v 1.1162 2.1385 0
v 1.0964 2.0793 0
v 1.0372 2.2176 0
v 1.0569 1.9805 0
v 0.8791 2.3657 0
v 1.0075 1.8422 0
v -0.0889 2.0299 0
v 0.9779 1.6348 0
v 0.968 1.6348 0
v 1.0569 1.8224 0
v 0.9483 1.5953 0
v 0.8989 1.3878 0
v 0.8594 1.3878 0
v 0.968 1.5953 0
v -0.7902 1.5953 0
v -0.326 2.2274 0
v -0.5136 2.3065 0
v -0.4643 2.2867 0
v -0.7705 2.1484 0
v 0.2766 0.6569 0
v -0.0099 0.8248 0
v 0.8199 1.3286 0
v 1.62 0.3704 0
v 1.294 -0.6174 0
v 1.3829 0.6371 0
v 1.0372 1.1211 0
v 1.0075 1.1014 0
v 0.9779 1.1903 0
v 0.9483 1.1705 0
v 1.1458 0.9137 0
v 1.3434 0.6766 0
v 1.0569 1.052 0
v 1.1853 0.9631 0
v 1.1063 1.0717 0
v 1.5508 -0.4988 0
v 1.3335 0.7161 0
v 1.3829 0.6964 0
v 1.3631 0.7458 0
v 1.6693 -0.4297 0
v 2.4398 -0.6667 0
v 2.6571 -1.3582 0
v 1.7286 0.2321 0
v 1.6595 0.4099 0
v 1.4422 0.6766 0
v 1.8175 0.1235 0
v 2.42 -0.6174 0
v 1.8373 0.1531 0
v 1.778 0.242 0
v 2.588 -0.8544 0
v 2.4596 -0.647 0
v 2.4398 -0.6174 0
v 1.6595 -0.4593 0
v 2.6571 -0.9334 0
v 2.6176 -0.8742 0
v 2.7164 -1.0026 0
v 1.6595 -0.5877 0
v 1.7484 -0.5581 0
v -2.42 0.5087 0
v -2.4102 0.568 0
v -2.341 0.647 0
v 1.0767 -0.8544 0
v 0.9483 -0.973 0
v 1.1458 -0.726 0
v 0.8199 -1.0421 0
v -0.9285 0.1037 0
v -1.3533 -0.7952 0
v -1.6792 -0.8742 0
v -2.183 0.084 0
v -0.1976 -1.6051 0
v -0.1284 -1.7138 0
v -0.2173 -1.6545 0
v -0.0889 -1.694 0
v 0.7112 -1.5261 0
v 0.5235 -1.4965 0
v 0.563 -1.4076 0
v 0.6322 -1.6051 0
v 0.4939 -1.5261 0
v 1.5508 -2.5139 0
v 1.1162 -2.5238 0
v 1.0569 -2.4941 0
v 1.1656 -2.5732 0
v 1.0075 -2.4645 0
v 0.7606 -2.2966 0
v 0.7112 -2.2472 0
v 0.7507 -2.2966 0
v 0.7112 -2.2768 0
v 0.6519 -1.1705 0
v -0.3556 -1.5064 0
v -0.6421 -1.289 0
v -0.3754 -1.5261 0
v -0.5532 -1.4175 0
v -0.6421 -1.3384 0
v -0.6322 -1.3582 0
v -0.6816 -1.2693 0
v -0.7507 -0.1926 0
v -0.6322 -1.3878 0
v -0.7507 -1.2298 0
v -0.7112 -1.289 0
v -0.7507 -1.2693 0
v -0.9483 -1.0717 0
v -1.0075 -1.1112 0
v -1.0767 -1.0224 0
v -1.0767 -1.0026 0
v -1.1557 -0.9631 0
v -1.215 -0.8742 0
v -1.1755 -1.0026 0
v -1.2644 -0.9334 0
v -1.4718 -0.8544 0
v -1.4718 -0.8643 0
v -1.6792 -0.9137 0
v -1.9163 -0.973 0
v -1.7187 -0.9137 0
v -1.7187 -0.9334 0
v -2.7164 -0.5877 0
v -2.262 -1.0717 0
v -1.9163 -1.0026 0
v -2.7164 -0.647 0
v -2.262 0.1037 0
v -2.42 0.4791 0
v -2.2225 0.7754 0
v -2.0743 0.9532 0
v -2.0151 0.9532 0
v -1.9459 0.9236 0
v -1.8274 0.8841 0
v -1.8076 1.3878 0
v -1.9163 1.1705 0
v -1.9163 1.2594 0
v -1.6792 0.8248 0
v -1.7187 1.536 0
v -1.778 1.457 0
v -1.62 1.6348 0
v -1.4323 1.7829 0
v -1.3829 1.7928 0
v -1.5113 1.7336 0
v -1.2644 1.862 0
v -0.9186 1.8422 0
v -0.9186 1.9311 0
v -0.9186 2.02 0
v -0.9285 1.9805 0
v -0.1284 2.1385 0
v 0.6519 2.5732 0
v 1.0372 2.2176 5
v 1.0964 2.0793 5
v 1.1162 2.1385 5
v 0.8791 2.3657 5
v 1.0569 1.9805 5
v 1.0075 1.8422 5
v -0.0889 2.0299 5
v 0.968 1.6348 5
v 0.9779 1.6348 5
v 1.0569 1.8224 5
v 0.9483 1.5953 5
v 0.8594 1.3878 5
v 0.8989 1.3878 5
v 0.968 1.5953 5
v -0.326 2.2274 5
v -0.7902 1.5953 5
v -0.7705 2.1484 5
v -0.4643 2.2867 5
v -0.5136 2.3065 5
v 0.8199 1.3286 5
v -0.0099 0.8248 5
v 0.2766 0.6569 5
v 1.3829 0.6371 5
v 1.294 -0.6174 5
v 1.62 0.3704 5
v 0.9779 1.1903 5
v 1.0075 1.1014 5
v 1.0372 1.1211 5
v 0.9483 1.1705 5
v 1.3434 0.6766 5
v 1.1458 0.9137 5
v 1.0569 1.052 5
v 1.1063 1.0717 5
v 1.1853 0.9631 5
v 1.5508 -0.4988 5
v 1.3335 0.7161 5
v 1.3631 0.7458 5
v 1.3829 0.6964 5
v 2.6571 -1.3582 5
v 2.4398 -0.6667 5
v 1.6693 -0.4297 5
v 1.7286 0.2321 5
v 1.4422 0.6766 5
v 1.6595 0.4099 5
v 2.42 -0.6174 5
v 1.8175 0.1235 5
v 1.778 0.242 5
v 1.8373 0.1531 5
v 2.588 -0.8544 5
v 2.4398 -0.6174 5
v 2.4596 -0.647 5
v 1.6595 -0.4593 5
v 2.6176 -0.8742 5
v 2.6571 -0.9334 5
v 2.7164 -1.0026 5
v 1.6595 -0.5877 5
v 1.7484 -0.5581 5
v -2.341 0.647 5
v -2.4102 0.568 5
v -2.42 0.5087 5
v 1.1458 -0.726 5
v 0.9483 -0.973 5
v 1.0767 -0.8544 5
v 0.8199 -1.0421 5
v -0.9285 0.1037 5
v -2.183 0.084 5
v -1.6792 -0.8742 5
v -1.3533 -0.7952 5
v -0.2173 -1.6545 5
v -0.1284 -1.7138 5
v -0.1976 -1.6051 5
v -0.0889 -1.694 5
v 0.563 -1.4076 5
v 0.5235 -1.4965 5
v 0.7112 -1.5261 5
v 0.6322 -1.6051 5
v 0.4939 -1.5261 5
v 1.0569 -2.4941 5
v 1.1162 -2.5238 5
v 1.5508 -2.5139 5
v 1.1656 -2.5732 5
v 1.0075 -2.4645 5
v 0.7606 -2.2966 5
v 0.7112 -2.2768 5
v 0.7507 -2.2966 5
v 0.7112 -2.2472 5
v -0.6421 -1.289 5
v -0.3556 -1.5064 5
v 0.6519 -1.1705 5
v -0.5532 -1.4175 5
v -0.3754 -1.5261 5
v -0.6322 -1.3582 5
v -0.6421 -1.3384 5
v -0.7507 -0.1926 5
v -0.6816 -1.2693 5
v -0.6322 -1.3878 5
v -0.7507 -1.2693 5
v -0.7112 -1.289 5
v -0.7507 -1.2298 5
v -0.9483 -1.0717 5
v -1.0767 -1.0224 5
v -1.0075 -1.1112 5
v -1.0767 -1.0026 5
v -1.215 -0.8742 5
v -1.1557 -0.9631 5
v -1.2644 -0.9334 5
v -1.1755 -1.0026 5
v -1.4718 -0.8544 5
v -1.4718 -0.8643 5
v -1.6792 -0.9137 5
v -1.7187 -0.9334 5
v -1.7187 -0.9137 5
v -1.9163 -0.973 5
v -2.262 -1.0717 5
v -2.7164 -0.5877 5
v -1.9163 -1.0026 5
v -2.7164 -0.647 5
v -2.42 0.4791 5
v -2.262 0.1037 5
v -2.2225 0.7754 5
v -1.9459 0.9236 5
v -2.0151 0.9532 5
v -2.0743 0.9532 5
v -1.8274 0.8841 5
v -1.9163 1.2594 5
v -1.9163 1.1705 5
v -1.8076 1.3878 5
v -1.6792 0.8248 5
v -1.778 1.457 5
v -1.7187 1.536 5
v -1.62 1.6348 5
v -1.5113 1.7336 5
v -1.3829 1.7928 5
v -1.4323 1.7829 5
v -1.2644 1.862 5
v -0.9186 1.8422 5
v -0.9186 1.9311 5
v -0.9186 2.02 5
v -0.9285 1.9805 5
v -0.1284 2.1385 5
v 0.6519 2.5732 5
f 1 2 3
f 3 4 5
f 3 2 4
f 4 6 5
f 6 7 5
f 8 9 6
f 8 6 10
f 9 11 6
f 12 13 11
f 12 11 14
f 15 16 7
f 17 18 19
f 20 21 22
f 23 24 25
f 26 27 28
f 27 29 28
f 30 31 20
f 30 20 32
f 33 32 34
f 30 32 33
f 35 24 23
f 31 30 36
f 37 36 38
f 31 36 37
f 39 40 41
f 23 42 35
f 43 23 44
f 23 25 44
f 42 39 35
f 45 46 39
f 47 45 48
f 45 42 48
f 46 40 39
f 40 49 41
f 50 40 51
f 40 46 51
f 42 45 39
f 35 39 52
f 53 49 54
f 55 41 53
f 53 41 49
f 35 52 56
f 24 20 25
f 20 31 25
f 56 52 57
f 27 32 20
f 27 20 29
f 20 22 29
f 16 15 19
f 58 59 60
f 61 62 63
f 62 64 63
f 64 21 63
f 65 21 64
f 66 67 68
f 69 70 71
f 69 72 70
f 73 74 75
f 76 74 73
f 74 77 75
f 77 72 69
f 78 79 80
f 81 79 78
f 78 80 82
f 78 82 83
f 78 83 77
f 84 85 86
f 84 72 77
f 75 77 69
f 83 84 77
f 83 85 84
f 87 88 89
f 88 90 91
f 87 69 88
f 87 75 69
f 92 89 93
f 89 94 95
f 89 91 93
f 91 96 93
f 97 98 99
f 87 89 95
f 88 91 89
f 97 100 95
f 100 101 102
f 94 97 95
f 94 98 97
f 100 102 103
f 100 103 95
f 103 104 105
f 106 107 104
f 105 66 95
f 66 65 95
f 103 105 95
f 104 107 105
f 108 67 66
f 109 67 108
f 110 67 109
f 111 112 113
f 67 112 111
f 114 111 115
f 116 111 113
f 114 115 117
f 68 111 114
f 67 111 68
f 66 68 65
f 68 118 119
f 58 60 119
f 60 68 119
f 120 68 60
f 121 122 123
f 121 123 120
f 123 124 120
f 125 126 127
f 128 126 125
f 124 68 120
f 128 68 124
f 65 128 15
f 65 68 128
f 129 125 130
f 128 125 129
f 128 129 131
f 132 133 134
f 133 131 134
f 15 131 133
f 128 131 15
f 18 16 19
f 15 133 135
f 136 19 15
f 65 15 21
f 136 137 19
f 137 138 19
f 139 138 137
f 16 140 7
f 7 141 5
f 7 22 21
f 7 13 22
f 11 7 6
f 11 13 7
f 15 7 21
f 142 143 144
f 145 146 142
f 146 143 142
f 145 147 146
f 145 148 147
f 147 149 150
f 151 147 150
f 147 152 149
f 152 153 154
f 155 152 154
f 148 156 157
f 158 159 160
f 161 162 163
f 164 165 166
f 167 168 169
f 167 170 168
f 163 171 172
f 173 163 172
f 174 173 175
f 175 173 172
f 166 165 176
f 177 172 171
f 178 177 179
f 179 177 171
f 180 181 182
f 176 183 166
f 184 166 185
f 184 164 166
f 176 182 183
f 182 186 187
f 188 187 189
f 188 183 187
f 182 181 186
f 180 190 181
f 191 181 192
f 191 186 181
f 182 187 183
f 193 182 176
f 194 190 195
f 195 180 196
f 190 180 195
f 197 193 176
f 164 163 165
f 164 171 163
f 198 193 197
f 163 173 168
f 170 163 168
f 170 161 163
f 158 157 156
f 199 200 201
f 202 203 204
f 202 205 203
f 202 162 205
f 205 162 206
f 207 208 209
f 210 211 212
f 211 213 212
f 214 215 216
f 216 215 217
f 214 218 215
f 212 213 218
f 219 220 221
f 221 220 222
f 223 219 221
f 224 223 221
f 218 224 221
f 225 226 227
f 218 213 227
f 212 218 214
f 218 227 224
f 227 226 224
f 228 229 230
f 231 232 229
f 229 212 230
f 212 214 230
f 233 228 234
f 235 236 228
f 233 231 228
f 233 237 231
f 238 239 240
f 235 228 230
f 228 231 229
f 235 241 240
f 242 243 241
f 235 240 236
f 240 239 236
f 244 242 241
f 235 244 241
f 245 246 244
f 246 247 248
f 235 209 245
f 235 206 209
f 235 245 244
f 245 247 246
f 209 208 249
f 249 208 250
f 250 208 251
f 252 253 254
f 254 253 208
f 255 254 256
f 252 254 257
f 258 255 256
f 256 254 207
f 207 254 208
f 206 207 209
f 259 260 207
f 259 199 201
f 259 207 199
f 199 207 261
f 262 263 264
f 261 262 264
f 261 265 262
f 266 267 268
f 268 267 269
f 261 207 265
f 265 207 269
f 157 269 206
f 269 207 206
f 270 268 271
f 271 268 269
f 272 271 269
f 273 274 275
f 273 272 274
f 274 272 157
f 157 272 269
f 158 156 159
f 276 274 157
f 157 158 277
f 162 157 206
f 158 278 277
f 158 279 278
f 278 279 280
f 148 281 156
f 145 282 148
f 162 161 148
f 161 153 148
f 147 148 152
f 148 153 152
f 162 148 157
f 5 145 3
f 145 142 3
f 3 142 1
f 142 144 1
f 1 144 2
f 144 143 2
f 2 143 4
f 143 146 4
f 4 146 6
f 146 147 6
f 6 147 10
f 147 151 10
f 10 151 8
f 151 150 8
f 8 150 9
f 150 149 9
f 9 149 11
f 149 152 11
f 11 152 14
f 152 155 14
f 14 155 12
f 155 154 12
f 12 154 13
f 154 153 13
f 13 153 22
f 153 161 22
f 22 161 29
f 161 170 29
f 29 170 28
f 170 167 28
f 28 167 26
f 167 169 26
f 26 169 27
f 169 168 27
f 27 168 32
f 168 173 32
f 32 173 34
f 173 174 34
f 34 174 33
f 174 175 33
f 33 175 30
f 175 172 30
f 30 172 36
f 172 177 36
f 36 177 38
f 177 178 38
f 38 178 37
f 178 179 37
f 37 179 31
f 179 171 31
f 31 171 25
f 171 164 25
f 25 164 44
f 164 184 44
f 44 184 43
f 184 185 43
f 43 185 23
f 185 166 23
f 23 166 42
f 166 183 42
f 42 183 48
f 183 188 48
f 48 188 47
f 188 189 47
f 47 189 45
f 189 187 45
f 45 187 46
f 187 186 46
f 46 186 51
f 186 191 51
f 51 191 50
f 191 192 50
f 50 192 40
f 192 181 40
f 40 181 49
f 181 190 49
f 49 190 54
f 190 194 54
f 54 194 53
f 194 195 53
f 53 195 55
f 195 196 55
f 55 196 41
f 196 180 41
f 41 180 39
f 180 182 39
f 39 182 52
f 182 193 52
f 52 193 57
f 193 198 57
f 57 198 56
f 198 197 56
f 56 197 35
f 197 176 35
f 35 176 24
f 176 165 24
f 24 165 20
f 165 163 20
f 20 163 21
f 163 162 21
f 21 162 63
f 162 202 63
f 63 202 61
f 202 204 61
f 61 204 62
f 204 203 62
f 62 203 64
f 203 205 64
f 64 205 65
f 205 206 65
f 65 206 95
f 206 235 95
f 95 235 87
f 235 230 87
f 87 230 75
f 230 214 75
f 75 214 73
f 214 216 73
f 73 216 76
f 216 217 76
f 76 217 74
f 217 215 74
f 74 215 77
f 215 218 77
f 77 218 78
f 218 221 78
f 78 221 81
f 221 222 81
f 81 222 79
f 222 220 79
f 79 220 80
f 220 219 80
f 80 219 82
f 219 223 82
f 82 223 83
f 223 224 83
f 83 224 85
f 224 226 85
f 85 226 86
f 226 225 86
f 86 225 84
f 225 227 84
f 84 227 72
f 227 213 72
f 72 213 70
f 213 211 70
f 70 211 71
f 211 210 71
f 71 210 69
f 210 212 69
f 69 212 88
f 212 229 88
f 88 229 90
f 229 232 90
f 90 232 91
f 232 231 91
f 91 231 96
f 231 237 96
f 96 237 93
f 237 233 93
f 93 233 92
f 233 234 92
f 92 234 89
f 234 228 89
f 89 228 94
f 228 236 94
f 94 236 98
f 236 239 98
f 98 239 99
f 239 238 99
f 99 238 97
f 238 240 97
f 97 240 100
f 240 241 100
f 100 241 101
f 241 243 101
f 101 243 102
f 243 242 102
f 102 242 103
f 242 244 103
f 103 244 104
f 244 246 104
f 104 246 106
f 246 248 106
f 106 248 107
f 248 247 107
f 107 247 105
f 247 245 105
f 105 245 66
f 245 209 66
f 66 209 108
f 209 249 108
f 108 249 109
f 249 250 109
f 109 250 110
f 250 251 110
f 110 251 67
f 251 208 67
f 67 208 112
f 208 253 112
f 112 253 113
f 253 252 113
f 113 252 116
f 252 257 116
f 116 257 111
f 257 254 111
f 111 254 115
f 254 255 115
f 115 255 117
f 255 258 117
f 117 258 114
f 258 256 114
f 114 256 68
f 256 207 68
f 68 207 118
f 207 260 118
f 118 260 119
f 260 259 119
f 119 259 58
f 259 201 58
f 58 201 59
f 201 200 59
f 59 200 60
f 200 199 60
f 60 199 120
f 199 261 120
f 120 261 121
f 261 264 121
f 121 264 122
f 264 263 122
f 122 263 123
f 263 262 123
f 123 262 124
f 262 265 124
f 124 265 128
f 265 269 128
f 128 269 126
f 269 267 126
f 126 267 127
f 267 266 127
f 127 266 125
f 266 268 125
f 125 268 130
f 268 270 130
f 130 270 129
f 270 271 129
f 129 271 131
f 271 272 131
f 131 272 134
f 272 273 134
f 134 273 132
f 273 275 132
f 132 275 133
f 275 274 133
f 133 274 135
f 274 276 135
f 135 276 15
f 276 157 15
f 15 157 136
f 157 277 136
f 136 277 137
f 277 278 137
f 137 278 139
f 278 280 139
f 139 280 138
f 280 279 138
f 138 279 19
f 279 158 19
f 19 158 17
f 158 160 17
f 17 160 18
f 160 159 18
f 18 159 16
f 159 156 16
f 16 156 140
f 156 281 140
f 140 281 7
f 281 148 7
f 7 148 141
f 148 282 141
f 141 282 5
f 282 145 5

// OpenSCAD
// Module names are of the form poly_<inkscape-path-id>().  As a result,
// you can associate a polygon in this OpenSCAD program with the corresponding
// SVG element in the Inkscape document by looking for the XML element with
// the attribute id="inkscape-path-id".

// fudge value is used to ensure that subtracted solids are a tad taller
// in the z dimension than the polygon being subtracted from.  This helps
// keep the resulting .stl file manifold.
fudge = 0.1;

module poly_path4285(h)
{
  scale([25.4/90, -25.4/90, 1]) union()
  {
    linear_extrude(height=h)
      polygon([[-1.820000,-8.172500],[-1.645000,-8.102500],[-1.155000,-7.892500],[-0.455000,-7.577500],[-0.315000,-7.192500],[2.310000,-9.117500],[3.115000,-8.382500],[3.675000,-7.857500],[3.955000,-7.577500],[3.885000,-7.367500],[3.745000,-7.017500],[3.570000,-6.527500],[3.745000,-6.457500],[3.465000,-5.792500],[3.430000,-5.792500],[3.360000,-5.652500],[3.430000,-5.652500],[3.185000,-4.917500],[3.045000,-4.917500],[2.905000,-4.707500],[3.360000,-4.147500],[3.465000,-4.217500],[3.675000,-3.972500],[3.570000,-3.902500],[3.745000,-3.727500],[3.920000,-3.797500],[4.200000,-3.412500],[4.060000,-3.237500],[4.725000,-2.537500],[4.830000,-2.642500],[4.900000,-2.467500],[4.760000,-2.397500],[4.900000,-2.257500],[5.110000,-2.397500],[5.880000,-1.452500],[5.740000,-1.312500],[6.125000,-0.822500],[6.300000,-0.857500],[6.510000,-0.542500],[6.440000,-0.437500],[8.575000,2.187500],[8.645000,2.187500],[8.715000,2.292500],[8.645000,2.362500],[9.170000,3.027500],[9.275000,3.097500],[9.415000,3.307500],[9.625000,3.552500],[9.415000,4.812500],[5.915000,1.522500],[5.880000,1.627500],[6.195000,1.977500],[5.880000,2.082500],[5.495000,1.767500],[4.585000,2.187500],[0.980000,-2.327500],[-0.035000,-2.922500],[4.060000,2.572500],[3.815000,3.027500],[3.360000,3.447500],[2.905000,3.692500],[-3.290000,-0.367500],[-2.660000,0.682500],[2.310000,4.147500],[1.995000,4.987500],[2.520000,5.407500],[2.240000,5.687500],[1.855000,5.302500],[1.750000,5.407500],[5.495000,8.907500],[4.130000,9.117500],[3.955000,8.942500],[3.745000,8.837500],[3.570000,8.732500],[2.695000,8.137500],[2.660000,8.137500],[2.520000,8.067500],[2.520000,7.962500],[-0.315000,6.002500],[-0.455000,6.072500],[-0.770000,5.862500],[-0.700000,5.687500],[-1.260000,5.337500],[-1.330000,5.407500],[-1.960000,5.022500],[-2.240000,4.917500],[-2.240000,4.812500],[-2.275000,4.742500],[-2.275000,4.567500],[-2.415000,4.497500],[-2.520000,4.567500],[-2.660000,4.497500],[-2.660000,4.357500],[-3.360000,3.797500],[-3.570000,3.937500],[-3.815000,3.622500],[-3.815000,3.552500],[-4.095000,3.412500],[-4.165000,3.552500],[-4.480000,3.307500],[-4.305000,3.097500],[-4.795000,2.817500],[-5.215000,3.027500],[-5.215000,3.062500],[-5.950000,3.237500],[-5.950000,3.097500],[-6.090000,3.237500],[-6.090000,3.307500],[-6.790000,3.552500],[-6.790000,3.447500],[-8.015000,3.797500],[-9.625000,2.292500],[-9.625000,2.082500],[-7.735000,-0.297500],[-8.015000,-0.367500],[-8.575000,-1.697500],[-8.575000,-1.802500],[-8.540000,-2.012500],[-8.295000,-2.292500],[-7.875000,-2.747500],[-7.350000,-3.377500],[-7.245000,-3.377500],[-7.140000,-3.377500],[-6.895000,-3.272500],[-6.475000,-3.132500],[-5.950000,-2.922500],[-6.790000,-4.147500],[-6.790000,-4.462500],[-6.405000,-4.917500],[-6.300000,-5.162500],[-6.090000,-5.442500],[-5.740000,-5.792500],[-5.355000,-6.142500],[-5.075000,-6.317500],[-4.900000,-6.352500],[-4.480000,-6.597500],[-2.800000,-5.652500],[-3.255000,-6.527500],[-3.255000,-6.842500],[-3.290000,-7.017500],[-3.255000,-7.157500],[-2.730000,-7.612500],[-1.820000,-8.172500]]);
  }
}

poly_path4285(5);
